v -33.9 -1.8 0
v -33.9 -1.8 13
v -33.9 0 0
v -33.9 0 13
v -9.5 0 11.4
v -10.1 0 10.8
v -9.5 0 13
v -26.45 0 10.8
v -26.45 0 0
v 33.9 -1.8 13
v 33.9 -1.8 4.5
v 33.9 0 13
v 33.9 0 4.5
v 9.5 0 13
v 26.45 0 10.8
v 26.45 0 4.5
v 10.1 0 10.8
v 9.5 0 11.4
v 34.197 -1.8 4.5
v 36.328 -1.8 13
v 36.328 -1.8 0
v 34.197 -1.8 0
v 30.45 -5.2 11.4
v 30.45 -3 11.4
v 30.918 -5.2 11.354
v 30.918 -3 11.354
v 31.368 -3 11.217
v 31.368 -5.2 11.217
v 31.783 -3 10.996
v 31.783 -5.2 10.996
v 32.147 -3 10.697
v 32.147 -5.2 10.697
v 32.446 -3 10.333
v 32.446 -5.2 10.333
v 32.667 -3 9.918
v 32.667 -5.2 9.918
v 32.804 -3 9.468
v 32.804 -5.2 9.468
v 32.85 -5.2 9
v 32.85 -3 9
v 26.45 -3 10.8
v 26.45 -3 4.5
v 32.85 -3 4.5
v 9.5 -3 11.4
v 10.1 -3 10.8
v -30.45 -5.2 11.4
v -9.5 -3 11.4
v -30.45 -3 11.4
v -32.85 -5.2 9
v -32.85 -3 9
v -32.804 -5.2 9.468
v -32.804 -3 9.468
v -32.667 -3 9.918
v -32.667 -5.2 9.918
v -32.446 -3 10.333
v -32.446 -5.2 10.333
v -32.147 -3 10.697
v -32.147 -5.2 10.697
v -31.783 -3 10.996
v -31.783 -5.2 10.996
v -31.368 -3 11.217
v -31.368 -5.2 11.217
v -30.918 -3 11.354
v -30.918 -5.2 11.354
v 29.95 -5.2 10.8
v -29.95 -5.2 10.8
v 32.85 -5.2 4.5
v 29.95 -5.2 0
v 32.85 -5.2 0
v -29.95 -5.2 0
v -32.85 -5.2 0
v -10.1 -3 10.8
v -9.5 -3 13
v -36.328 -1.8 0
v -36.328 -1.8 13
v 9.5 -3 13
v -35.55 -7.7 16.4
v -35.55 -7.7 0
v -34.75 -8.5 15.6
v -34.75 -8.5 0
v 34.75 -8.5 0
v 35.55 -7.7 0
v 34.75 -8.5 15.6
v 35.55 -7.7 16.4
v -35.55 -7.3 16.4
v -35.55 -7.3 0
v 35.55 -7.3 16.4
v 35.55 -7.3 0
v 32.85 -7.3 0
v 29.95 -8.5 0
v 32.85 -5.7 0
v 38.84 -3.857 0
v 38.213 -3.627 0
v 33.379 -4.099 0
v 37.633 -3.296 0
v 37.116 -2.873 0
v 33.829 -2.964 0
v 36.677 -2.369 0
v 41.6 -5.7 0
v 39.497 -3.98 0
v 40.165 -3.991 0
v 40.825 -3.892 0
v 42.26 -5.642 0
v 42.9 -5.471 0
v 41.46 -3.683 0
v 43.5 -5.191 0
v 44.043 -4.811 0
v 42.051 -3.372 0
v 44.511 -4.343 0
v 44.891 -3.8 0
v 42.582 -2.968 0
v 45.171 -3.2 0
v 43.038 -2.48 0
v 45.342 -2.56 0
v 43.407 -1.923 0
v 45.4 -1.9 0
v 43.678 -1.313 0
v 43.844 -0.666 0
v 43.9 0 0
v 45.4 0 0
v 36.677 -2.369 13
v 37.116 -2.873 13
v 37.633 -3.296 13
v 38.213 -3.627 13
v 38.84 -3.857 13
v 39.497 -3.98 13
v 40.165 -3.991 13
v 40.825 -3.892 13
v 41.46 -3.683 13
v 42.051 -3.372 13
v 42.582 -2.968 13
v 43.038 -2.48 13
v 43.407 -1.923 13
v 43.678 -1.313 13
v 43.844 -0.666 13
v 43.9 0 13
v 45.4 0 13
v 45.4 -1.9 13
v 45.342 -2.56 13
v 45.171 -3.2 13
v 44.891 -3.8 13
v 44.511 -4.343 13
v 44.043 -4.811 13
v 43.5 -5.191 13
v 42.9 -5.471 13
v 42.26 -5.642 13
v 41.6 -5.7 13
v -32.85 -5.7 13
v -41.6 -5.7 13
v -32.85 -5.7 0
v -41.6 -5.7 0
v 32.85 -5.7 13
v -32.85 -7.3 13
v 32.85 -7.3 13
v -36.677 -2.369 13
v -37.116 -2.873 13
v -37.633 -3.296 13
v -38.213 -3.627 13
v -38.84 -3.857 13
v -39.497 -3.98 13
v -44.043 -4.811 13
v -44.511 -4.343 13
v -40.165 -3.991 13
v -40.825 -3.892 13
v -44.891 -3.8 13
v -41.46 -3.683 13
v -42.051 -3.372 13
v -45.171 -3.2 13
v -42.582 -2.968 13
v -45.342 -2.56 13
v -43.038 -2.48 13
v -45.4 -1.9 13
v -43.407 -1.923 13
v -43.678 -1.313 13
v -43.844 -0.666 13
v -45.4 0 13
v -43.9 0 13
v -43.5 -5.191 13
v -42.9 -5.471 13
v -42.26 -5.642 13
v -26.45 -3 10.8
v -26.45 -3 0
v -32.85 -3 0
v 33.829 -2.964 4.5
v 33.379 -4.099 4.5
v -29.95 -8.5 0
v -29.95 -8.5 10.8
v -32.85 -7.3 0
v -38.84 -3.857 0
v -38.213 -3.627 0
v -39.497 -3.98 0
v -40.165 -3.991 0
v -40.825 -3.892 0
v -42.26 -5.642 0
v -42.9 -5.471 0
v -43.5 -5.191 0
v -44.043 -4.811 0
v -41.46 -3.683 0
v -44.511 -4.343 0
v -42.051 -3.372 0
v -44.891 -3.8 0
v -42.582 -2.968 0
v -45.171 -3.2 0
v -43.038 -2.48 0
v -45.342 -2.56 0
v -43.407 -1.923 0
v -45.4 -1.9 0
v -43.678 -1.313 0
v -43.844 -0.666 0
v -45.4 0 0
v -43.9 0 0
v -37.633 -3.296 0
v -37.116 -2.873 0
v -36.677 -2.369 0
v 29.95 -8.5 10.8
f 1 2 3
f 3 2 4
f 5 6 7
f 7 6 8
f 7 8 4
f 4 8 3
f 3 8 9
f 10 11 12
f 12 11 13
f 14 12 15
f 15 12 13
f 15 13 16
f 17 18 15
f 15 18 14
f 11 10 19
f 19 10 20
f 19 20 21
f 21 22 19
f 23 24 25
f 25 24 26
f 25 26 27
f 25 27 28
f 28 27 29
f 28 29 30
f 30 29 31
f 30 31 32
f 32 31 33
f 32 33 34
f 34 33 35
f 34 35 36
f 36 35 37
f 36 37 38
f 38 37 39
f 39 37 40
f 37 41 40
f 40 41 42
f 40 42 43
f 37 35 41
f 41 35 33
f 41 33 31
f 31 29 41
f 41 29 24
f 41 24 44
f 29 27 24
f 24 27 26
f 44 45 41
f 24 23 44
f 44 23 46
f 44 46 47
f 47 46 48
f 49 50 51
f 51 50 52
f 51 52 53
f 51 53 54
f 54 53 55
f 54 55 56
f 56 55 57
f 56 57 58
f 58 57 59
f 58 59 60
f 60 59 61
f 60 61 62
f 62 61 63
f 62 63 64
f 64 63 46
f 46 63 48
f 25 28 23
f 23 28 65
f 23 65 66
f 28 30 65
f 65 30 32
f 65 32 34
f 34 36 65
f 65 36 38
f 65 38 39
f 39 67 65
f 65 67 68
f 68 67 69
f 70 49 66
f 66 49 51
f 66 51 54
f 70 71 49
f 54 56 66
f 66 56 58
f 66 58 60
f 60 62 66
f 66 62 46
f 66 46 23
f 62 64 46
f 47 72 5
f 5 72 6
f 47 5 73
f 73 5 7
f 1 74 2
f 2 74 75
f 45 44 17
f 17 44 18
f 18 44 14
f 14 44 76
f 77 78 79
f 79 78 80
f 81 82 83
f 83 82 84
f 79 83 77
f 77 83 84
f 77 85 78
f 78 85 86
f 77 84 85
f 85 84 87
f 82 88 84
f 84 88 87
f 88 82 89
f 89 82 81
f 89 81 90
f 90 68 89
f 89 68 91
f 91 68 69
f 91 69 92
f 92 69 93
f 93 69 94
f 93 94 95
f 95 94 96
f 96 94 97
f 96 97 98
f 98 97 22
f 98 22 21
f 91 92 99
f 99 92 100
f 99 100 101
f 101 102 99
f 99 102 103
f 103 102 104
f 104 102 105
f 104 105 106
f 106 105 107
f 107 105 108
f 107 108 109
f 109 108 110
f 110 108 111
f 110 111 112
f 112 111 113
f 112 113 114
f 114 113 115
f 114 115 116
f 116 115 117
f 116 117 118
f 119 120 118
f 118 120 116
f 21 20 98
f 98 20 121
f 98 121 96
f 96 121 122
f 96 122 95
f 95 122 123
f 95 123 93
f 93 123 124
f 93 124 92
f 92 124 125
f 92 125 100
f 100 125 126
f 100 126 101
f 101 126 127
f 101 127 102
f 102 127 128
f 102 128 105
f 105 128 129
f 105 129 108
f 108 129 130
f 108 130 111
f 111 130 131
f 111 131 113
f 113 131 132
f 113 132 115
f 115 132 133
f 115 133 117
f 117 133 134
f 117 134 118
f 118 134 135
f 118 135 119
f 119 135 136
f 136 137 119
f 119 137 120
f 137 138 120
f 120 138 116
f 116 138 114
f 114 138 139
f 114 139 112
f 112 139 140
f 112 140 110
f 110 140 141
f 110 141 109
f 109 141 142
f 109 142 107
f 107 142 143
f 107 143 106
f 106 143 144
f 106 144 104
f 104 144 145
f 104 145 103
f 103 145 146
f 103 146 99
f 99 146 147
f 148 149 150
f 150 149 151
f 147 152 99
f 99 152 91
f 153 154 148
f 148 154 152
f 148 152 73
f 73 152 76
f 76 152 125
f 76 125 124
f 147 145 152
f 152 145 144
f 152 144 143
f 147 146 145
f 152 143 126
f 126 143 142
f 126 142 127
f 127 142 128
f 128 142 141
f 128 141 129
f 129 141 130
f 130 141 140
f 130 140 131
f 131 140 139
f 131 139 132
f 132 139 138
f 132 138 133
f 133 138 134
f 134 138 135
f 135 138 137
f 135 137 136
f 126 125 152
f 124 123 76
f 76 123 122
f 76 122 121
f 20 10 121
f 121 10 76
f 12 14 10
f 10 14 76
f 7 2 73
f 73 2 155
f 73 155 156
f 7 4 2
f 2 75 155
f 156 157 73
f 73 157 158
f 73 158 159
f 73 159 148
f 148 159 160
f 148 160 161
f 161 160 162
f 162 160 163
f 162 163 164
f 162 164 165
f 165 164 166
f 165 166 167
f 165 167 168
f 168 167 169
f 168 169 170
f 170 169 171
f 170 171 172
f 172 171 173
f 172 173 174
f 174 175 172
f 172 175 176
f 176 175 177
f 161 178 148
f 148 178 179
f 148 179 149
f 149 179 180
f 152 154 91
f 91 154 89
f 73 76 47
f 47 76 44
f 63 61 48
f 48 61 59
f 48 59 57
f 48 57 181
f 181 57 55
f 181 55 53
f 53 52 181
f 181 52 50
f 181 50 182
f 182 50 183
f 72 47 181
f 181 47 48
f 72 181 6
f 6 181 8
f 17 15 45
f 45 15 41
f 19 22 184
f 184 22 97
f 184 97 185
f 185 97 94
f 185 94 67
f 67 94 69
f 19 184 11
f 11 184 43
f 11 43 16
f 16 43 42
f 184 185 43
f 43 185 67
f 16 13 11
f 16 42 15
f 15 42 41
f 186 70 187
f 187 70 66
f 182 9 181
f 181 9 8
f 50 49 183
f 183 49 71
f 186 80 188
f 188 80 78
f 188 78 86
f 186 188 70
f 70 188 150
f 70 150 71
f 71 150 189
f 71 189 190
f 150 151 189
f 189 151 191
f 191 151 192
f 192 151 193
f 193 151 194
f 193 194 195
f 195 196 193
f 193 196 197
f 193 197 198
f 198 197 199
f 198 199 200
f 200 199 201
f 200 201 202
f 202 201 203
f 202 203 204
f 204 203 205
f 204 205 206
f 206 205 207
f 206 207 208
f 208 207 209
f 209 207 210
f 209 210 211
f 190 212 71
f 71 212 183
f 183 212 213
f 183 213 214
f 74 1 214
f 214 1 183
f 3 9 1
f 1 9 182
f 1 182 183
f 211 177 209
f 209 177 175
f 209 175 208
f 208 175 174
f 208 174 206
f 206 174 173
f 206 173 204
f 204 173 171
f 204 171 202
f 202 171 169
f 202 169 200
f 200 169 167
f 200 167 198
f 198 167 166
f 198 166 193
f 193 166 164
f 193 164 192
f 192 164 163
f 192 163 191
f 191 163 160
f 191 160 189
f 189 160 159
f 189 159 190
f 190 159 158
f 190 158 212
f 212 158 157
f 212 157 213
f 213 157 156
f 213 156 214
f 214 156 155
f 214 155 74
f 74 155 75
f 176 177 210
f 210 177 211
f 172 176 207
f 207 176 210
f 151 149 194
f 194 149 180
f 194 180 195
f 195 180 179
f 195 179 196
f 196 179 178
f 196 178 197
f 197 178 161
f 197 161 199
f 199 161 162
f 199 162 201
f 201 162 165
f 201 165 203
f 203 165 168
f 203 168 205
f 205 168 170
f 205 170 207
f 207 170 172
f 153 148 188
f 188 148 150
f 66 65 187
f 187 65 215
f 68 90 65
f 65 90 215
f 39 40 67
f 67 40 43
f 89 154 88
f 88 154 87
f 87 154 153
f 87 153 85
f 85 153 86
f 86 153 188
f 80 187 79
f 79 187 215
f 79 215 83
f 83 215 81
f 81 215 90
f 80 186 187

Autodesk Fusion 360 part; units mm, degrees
sketch "Skizze1" plane through (0, 0, 0) normal (0, 0, 1) x (1, 0, 0)
  line L0 (0, 0) -> (39.9, 0) construction
  circle A0 centre (39.9, 0) radius 3.8
  line L1 (33.05, -7.2) -> (46.9, -7.2)
  line L2 (46.9, -7.2) -> (46.9, 42.9968)
  line L3 (45.6, -5.9) -> (45.6, 33.959)
  line L4 (45.6, -5.9) -> (33.05, -5.9)
  line L5 (36.733, 2.1) -> (30.2653, 2.1)
  line L6 (30.2653, 2.1) -> (30.2653, -2.1)
  line L7 (30.2653, -2.1) -> (36.733, -2.1)
  line L8 (36.733, -2.1) -> (36.733, 2.1)
  arc A1 (41.6, -5.9) -> (45.6, -1.9) centre (41.6, -1.9) ccw
  line L9 (43.9, 0) -> (45.4, 0)
  line L10 (45.4, 0) -> (45.4, -1.9)
  arc A2 (36.6274, -2.3) -> (43.9, 0) centre (39.9, 0) ccw
  arc A3 (41.6, -5.7) -> (45.4, -1.9) centre (41.6, -1.9) ccw
  line L11 (41.6, -5.7) -> (32.85, -5.7)
  line L12 (36.6274, -2.3) -> (0, -2.3)
  line L13 (33.05, -7.2) -> (33.05, -5.9)
  line L14 (32.85, -5.7) -> (32.85, -7.3)
  line L15 (32.85, -7.3) -> (35.55, -7.3)
  line L16 (35.55, -7.3) -> (35.55, -8.5)
  line L17 (35.55, -8.5) -> (0, -8.5)
  line L18 (0, -2.3) -> (0, -8.5)
  dimension "d1" = 39.9
  dimension "d2" = 7.6
  dimension "d3" = 7.2
  dimension "d5" = 1.3
  dimension "d6" = 1.3
  dimension "d7" = 4.2
  dimension "d8" = 4
  dimension "d10" = 0.2
  dimension "d11" = 0.2
  dimension "d12" = 0.2
  dimension "d13" = 0.2
  dimension "d14" = 0.2
  dimension "d15" = 33.05
  dimension "d16" = 0.2
  dimension "d17" = 0.1
  dimension "d18" = 2.7
  dimension "d19" = 1.2
  dimension "d47" = 7
extrude "Extrusion1" add sketch "Skizze1" along normal blind 16.4 contours L9 L10 A2 A3 L11 L12 L14 L15 L16 L17 L18
sketch "Skizze2" plane through (0, 0, 0) normal (0, 0, -1) x (1, 0, 0)
  line L0 (0, 2.3) -> (36.6274, 2.3)
  arc A0 (43.9, 0) -> (36.6274, 2.3) centre (39.9, 0) ccw
  line L1 (43.9, 0) -> (45.4, 0)
  line L2 (45.4, 0) -> (45.4, 1.9)
  arc A1 (45.4, 1.9) -> (41.6, 5.7) centre (41.6, 1.9) ccw
  line L3 (41.6, 5.7) -> (32.85, 5.7)
  line L4 (32.85, 5.7) -> (32.85, 7.3)
  line L5 (32.85, 7.3) -> (35.55, 7.3)
  line L6 (35.55, 7.3) -> (35.55, 8.5)
  line L7 (35.55, 8.5) -> (0, 8.5)
  line L8 (0, 8.5) -> (0, 2.3)
  line L9 (32.85, 5.2) -> (32.85, 3)
  line L10 (32.85, 5.2) -> (29.95, 5.2)
  line L11 (29.95, 5.2) -> (29.95, 8.5)
  line L12 (32.85, 3) -> (26.45, 3)
  line L13 (26.45, 3) -> (26.45, 2.3)
  line L14 (32.85, 3) -> (32.85, 2.3) construction
  arc A2 (34.05, 2.3) -> (32.85, 5.2) centre (17.5457, -2.8311) ccw
  dimension "d23" = 3.3
  dimension "d24" = 2.2
  dimension "d25" = 32.85
  dimension "d26" = 2.9
  dimension "d27" = 6.4
  dimension "d34" = 1.2
extrude "Extrusion2" cut sketch "Skizze2" against normal blind 10.8 contours L0 L7 L8 L9 L10 L11 L12 L13
sketch "Skizze3" plane through (0, 0, 10.8) normal (0, 0, -1) x (1, 0, 0)
  line L0 (32.85, 5.2) -> (29.95, 5.2)
  line L1 (29.95, 5.2) -> (29.95, 8.5)
  line L2 (29.95, 8.5) -> (0, 8.5)
  line L3 (0, 8.5) -> (0, 2.3)
  line L4 (0, 2.3) -> (26.45, 2.3)
  line L5 (26.45, 2.3) -> (26.45, 3)
  line L6 (26.45, 3) -> (32.85, 3)
  line L7 (32.85, 3) -> (32.85, 5.2)
  line L8 (29.95, 5.2) -> (0, 5.2)
  line L9 (26.45, 3) -> (0, 3)
extrude "Extrusion3" cut sketch "Skizze3" against normal blind 0.6 contours L0 L3 L6 L7 L8 L9
mirror "Spiegeln1" about plane through (0, 0, 0) normal (1, 0, 0) of bodies 1 merged
extrude "Extrusion4" cut sketch "Skizze2" against normal blind 4.5 contours L0 L9 L12 L13 A2
sketch "Skizze5" plane through (0, 0, 10.8) normal (0, 0, -1) x (1, 0, 0)
  line L0 (26.45, 3) -> (-26.45, 3)
  line L1 (-26.45, 3) -> (-26.45, 2.3)
  line L2 (-26.45, 2.3) -> (26.45, 2.3)
  line L3 (26.45, 2.3) -> (26.45, 3)
  line L4 (-9.5, 2.3) -> (9.5, 2.3)
  line L5 (9.5, 2.3) -> (9.5, 3)
  line L6 (9.5, 3) -> (-9.5, 3)
  line L7 (-9.5, 3) -> (-9.5, 2.3)
  dimension "d39" = 19
extrude "Extrusion6" cut sketch "Skizze5" against normal blind 4.6 contours L0 L2 L4 L5 L6 L7
sketch "Skizze6" plane through (0, 0, 16.4) normal (0, 0, 1) x (-1, 0, 0)
  line L0 (-36.6274, 2.3) -> (36.6274, 2.3)
  arc A0 (43.9, 0) -> (36.6274, 2.3) centre (39.9, 0) ccw
  line L1 (43.9, 0) -> (45.4, 0)
  line L2 (45.4, 0) -> (45.4, 1.9)
  arc A1 (45.4, 1.9) -> (41.6, 5.7) centre (41.6, 1.9) ccw
  line L3 (41.6, 5.7) -> (32.85, 5.7)
  line L4 (32.85, 5.7) -> (32.85, 7.3)
  line L5 (32.85, 7.3) -> (35.55, 7.3)
  line L6 (35.55, 7.3) -> (35.55, 8.5)
  line L7 (35.55, 8.5) -> (-35.55, 8.5)
  line L8 (-35.55, 8.5) -> (-35.55, 7.3)
  line L9 (-35.55, 7.3) -> (-32.85, 7.3)
  line L10 (-32.85, 7.3) -> (-32.85, 5.7)
  line L11 (-32.85, 5.7) -> (-41.6, 5.7)
  arc A2 (-41.6, 5.7) -> (-45.4, 1.9) centre (-41.6, 1.9) ccw
  line L12 (-45.4, 1.9) -> (-45.4, 0)
  line L13 (-45.4, 0) -> (-43.9, 0)
  arc A3 (-36.6274, 2.3) -> (-43.9, 0) centre (-39.9, 0) ccw
  line L14 (32.85, 7.3) -> (-32.85, 7.3)
  line L15 (32.85, 5.7) -> (-32.85, 5.7)
extrude "Extrusion7" cut sketch "Skizze6" against normal blind 3.4 contours L4 L10 L14 L15
extrude "Extrusion8" cut 1 faces at (-12.6469, -4.9624, 16.4) along direction (0, 0, -1) blind 3.4
chamfer "Fase1" distance 0.8 angle 45 3 edges at (35.55, -8.5, 8.2) (0, -8.5, 16.4) (-35.55, -8.5, 8.2)
chamfer "Fase1" distance 0.6 angle 45 2 edges at (9.5, -2.65, 10.8) (-9.5, -2.65, 10.8)
fillet "Abrundung1" radius 2.4 2 edges at (-32.85, -4.1, 11.4) (32.85, -4.1, 11.4)
move_face "Flächen versetzen1" offset 0.5 2 faces at (32.3758, -2.3, 9.4333) (-33.2349, -2.3, 7.9333)
sketch "Skizze7" plane through (0, -1.8, 0) normal (0, 1, 0) x (-1, 0, 0)
  line L0 (9.5, 11.4) -> (10.1, 10.8)
  line L1 (10.1, 10.8) -> (26.45, 10.8)
  line L2 (26.45, 10.8) -> (26.45, 0)
  line L3 (26.45, 0) -> (36.3279, 0)
  line L4 (36.3279, 0) -> (36.3279, 13)
  line L5 (36.3279, 13) -> (9.5, 13)
  line L6 (9.5, 13) -> (9.5, 11.4)
  line L7 (33.9, 13) -> (33.9, 0)
  line L8 (-10.1, 10.8) -> (-9.5, 11.4)
  line L9 (-9.5, 11.4) -> (-9.5, 13)
  line L10 (-9.5, 13) -> (-36.3279, 13)
  line L11 (-36.3279, 13) -> (-36.3279, 0)
  line L12 (-36.3279, 0) -> (-34.1972, 0)
  line L13 (-34.1972, 0) -> (-34.1972, 4.5)
  line L14 (-34.1972, 4.5) -> (-26.45, 4.5)
  line L15 (-26.45, 4.5) -> (-26.45, 10.8)
  line L16 (-26.45, 10.8) -> (-10.1, 10.8)
  line L17 (-33.9, 13) -> (-33.9, 4.5)
  point P0 (43.9, 13)
  point P1 (-43.9, 13)
  dimension "d52" = 10
  dimension "d53" = 10
extrude "Extrusion9" add sketch "Skizze7" along normal blind 1.8 contours L0 L1 L2 L3 L5 L6 L7 | L8 L9 L10 L14 L15 L16 L17
equation "d1 = ( 79.8 / 2 ) * 1 mm"
equation "d3 = 11 mm - ( 7.6 / 2 ) * 1 mm"
equation "toleranz = 0.2 mm"
equation "d10 = toleranz"
equation "d11 = toleranz"
equation "d12 = toleranz"
equation "d13 = toleranz"
equation "d14 = toleranz"
equation "d15 = ( 66.1 / 2 ) * 1 mm"
equation "d16 = toleranz"
equation "d25 = ( 65.7 / 2 ) * 1 mm"
equation "d28 = -10.7 mm + 0.6 mm - 0.7 mm"
equation "d40 = -4.00 mm - 0.6 mm"
